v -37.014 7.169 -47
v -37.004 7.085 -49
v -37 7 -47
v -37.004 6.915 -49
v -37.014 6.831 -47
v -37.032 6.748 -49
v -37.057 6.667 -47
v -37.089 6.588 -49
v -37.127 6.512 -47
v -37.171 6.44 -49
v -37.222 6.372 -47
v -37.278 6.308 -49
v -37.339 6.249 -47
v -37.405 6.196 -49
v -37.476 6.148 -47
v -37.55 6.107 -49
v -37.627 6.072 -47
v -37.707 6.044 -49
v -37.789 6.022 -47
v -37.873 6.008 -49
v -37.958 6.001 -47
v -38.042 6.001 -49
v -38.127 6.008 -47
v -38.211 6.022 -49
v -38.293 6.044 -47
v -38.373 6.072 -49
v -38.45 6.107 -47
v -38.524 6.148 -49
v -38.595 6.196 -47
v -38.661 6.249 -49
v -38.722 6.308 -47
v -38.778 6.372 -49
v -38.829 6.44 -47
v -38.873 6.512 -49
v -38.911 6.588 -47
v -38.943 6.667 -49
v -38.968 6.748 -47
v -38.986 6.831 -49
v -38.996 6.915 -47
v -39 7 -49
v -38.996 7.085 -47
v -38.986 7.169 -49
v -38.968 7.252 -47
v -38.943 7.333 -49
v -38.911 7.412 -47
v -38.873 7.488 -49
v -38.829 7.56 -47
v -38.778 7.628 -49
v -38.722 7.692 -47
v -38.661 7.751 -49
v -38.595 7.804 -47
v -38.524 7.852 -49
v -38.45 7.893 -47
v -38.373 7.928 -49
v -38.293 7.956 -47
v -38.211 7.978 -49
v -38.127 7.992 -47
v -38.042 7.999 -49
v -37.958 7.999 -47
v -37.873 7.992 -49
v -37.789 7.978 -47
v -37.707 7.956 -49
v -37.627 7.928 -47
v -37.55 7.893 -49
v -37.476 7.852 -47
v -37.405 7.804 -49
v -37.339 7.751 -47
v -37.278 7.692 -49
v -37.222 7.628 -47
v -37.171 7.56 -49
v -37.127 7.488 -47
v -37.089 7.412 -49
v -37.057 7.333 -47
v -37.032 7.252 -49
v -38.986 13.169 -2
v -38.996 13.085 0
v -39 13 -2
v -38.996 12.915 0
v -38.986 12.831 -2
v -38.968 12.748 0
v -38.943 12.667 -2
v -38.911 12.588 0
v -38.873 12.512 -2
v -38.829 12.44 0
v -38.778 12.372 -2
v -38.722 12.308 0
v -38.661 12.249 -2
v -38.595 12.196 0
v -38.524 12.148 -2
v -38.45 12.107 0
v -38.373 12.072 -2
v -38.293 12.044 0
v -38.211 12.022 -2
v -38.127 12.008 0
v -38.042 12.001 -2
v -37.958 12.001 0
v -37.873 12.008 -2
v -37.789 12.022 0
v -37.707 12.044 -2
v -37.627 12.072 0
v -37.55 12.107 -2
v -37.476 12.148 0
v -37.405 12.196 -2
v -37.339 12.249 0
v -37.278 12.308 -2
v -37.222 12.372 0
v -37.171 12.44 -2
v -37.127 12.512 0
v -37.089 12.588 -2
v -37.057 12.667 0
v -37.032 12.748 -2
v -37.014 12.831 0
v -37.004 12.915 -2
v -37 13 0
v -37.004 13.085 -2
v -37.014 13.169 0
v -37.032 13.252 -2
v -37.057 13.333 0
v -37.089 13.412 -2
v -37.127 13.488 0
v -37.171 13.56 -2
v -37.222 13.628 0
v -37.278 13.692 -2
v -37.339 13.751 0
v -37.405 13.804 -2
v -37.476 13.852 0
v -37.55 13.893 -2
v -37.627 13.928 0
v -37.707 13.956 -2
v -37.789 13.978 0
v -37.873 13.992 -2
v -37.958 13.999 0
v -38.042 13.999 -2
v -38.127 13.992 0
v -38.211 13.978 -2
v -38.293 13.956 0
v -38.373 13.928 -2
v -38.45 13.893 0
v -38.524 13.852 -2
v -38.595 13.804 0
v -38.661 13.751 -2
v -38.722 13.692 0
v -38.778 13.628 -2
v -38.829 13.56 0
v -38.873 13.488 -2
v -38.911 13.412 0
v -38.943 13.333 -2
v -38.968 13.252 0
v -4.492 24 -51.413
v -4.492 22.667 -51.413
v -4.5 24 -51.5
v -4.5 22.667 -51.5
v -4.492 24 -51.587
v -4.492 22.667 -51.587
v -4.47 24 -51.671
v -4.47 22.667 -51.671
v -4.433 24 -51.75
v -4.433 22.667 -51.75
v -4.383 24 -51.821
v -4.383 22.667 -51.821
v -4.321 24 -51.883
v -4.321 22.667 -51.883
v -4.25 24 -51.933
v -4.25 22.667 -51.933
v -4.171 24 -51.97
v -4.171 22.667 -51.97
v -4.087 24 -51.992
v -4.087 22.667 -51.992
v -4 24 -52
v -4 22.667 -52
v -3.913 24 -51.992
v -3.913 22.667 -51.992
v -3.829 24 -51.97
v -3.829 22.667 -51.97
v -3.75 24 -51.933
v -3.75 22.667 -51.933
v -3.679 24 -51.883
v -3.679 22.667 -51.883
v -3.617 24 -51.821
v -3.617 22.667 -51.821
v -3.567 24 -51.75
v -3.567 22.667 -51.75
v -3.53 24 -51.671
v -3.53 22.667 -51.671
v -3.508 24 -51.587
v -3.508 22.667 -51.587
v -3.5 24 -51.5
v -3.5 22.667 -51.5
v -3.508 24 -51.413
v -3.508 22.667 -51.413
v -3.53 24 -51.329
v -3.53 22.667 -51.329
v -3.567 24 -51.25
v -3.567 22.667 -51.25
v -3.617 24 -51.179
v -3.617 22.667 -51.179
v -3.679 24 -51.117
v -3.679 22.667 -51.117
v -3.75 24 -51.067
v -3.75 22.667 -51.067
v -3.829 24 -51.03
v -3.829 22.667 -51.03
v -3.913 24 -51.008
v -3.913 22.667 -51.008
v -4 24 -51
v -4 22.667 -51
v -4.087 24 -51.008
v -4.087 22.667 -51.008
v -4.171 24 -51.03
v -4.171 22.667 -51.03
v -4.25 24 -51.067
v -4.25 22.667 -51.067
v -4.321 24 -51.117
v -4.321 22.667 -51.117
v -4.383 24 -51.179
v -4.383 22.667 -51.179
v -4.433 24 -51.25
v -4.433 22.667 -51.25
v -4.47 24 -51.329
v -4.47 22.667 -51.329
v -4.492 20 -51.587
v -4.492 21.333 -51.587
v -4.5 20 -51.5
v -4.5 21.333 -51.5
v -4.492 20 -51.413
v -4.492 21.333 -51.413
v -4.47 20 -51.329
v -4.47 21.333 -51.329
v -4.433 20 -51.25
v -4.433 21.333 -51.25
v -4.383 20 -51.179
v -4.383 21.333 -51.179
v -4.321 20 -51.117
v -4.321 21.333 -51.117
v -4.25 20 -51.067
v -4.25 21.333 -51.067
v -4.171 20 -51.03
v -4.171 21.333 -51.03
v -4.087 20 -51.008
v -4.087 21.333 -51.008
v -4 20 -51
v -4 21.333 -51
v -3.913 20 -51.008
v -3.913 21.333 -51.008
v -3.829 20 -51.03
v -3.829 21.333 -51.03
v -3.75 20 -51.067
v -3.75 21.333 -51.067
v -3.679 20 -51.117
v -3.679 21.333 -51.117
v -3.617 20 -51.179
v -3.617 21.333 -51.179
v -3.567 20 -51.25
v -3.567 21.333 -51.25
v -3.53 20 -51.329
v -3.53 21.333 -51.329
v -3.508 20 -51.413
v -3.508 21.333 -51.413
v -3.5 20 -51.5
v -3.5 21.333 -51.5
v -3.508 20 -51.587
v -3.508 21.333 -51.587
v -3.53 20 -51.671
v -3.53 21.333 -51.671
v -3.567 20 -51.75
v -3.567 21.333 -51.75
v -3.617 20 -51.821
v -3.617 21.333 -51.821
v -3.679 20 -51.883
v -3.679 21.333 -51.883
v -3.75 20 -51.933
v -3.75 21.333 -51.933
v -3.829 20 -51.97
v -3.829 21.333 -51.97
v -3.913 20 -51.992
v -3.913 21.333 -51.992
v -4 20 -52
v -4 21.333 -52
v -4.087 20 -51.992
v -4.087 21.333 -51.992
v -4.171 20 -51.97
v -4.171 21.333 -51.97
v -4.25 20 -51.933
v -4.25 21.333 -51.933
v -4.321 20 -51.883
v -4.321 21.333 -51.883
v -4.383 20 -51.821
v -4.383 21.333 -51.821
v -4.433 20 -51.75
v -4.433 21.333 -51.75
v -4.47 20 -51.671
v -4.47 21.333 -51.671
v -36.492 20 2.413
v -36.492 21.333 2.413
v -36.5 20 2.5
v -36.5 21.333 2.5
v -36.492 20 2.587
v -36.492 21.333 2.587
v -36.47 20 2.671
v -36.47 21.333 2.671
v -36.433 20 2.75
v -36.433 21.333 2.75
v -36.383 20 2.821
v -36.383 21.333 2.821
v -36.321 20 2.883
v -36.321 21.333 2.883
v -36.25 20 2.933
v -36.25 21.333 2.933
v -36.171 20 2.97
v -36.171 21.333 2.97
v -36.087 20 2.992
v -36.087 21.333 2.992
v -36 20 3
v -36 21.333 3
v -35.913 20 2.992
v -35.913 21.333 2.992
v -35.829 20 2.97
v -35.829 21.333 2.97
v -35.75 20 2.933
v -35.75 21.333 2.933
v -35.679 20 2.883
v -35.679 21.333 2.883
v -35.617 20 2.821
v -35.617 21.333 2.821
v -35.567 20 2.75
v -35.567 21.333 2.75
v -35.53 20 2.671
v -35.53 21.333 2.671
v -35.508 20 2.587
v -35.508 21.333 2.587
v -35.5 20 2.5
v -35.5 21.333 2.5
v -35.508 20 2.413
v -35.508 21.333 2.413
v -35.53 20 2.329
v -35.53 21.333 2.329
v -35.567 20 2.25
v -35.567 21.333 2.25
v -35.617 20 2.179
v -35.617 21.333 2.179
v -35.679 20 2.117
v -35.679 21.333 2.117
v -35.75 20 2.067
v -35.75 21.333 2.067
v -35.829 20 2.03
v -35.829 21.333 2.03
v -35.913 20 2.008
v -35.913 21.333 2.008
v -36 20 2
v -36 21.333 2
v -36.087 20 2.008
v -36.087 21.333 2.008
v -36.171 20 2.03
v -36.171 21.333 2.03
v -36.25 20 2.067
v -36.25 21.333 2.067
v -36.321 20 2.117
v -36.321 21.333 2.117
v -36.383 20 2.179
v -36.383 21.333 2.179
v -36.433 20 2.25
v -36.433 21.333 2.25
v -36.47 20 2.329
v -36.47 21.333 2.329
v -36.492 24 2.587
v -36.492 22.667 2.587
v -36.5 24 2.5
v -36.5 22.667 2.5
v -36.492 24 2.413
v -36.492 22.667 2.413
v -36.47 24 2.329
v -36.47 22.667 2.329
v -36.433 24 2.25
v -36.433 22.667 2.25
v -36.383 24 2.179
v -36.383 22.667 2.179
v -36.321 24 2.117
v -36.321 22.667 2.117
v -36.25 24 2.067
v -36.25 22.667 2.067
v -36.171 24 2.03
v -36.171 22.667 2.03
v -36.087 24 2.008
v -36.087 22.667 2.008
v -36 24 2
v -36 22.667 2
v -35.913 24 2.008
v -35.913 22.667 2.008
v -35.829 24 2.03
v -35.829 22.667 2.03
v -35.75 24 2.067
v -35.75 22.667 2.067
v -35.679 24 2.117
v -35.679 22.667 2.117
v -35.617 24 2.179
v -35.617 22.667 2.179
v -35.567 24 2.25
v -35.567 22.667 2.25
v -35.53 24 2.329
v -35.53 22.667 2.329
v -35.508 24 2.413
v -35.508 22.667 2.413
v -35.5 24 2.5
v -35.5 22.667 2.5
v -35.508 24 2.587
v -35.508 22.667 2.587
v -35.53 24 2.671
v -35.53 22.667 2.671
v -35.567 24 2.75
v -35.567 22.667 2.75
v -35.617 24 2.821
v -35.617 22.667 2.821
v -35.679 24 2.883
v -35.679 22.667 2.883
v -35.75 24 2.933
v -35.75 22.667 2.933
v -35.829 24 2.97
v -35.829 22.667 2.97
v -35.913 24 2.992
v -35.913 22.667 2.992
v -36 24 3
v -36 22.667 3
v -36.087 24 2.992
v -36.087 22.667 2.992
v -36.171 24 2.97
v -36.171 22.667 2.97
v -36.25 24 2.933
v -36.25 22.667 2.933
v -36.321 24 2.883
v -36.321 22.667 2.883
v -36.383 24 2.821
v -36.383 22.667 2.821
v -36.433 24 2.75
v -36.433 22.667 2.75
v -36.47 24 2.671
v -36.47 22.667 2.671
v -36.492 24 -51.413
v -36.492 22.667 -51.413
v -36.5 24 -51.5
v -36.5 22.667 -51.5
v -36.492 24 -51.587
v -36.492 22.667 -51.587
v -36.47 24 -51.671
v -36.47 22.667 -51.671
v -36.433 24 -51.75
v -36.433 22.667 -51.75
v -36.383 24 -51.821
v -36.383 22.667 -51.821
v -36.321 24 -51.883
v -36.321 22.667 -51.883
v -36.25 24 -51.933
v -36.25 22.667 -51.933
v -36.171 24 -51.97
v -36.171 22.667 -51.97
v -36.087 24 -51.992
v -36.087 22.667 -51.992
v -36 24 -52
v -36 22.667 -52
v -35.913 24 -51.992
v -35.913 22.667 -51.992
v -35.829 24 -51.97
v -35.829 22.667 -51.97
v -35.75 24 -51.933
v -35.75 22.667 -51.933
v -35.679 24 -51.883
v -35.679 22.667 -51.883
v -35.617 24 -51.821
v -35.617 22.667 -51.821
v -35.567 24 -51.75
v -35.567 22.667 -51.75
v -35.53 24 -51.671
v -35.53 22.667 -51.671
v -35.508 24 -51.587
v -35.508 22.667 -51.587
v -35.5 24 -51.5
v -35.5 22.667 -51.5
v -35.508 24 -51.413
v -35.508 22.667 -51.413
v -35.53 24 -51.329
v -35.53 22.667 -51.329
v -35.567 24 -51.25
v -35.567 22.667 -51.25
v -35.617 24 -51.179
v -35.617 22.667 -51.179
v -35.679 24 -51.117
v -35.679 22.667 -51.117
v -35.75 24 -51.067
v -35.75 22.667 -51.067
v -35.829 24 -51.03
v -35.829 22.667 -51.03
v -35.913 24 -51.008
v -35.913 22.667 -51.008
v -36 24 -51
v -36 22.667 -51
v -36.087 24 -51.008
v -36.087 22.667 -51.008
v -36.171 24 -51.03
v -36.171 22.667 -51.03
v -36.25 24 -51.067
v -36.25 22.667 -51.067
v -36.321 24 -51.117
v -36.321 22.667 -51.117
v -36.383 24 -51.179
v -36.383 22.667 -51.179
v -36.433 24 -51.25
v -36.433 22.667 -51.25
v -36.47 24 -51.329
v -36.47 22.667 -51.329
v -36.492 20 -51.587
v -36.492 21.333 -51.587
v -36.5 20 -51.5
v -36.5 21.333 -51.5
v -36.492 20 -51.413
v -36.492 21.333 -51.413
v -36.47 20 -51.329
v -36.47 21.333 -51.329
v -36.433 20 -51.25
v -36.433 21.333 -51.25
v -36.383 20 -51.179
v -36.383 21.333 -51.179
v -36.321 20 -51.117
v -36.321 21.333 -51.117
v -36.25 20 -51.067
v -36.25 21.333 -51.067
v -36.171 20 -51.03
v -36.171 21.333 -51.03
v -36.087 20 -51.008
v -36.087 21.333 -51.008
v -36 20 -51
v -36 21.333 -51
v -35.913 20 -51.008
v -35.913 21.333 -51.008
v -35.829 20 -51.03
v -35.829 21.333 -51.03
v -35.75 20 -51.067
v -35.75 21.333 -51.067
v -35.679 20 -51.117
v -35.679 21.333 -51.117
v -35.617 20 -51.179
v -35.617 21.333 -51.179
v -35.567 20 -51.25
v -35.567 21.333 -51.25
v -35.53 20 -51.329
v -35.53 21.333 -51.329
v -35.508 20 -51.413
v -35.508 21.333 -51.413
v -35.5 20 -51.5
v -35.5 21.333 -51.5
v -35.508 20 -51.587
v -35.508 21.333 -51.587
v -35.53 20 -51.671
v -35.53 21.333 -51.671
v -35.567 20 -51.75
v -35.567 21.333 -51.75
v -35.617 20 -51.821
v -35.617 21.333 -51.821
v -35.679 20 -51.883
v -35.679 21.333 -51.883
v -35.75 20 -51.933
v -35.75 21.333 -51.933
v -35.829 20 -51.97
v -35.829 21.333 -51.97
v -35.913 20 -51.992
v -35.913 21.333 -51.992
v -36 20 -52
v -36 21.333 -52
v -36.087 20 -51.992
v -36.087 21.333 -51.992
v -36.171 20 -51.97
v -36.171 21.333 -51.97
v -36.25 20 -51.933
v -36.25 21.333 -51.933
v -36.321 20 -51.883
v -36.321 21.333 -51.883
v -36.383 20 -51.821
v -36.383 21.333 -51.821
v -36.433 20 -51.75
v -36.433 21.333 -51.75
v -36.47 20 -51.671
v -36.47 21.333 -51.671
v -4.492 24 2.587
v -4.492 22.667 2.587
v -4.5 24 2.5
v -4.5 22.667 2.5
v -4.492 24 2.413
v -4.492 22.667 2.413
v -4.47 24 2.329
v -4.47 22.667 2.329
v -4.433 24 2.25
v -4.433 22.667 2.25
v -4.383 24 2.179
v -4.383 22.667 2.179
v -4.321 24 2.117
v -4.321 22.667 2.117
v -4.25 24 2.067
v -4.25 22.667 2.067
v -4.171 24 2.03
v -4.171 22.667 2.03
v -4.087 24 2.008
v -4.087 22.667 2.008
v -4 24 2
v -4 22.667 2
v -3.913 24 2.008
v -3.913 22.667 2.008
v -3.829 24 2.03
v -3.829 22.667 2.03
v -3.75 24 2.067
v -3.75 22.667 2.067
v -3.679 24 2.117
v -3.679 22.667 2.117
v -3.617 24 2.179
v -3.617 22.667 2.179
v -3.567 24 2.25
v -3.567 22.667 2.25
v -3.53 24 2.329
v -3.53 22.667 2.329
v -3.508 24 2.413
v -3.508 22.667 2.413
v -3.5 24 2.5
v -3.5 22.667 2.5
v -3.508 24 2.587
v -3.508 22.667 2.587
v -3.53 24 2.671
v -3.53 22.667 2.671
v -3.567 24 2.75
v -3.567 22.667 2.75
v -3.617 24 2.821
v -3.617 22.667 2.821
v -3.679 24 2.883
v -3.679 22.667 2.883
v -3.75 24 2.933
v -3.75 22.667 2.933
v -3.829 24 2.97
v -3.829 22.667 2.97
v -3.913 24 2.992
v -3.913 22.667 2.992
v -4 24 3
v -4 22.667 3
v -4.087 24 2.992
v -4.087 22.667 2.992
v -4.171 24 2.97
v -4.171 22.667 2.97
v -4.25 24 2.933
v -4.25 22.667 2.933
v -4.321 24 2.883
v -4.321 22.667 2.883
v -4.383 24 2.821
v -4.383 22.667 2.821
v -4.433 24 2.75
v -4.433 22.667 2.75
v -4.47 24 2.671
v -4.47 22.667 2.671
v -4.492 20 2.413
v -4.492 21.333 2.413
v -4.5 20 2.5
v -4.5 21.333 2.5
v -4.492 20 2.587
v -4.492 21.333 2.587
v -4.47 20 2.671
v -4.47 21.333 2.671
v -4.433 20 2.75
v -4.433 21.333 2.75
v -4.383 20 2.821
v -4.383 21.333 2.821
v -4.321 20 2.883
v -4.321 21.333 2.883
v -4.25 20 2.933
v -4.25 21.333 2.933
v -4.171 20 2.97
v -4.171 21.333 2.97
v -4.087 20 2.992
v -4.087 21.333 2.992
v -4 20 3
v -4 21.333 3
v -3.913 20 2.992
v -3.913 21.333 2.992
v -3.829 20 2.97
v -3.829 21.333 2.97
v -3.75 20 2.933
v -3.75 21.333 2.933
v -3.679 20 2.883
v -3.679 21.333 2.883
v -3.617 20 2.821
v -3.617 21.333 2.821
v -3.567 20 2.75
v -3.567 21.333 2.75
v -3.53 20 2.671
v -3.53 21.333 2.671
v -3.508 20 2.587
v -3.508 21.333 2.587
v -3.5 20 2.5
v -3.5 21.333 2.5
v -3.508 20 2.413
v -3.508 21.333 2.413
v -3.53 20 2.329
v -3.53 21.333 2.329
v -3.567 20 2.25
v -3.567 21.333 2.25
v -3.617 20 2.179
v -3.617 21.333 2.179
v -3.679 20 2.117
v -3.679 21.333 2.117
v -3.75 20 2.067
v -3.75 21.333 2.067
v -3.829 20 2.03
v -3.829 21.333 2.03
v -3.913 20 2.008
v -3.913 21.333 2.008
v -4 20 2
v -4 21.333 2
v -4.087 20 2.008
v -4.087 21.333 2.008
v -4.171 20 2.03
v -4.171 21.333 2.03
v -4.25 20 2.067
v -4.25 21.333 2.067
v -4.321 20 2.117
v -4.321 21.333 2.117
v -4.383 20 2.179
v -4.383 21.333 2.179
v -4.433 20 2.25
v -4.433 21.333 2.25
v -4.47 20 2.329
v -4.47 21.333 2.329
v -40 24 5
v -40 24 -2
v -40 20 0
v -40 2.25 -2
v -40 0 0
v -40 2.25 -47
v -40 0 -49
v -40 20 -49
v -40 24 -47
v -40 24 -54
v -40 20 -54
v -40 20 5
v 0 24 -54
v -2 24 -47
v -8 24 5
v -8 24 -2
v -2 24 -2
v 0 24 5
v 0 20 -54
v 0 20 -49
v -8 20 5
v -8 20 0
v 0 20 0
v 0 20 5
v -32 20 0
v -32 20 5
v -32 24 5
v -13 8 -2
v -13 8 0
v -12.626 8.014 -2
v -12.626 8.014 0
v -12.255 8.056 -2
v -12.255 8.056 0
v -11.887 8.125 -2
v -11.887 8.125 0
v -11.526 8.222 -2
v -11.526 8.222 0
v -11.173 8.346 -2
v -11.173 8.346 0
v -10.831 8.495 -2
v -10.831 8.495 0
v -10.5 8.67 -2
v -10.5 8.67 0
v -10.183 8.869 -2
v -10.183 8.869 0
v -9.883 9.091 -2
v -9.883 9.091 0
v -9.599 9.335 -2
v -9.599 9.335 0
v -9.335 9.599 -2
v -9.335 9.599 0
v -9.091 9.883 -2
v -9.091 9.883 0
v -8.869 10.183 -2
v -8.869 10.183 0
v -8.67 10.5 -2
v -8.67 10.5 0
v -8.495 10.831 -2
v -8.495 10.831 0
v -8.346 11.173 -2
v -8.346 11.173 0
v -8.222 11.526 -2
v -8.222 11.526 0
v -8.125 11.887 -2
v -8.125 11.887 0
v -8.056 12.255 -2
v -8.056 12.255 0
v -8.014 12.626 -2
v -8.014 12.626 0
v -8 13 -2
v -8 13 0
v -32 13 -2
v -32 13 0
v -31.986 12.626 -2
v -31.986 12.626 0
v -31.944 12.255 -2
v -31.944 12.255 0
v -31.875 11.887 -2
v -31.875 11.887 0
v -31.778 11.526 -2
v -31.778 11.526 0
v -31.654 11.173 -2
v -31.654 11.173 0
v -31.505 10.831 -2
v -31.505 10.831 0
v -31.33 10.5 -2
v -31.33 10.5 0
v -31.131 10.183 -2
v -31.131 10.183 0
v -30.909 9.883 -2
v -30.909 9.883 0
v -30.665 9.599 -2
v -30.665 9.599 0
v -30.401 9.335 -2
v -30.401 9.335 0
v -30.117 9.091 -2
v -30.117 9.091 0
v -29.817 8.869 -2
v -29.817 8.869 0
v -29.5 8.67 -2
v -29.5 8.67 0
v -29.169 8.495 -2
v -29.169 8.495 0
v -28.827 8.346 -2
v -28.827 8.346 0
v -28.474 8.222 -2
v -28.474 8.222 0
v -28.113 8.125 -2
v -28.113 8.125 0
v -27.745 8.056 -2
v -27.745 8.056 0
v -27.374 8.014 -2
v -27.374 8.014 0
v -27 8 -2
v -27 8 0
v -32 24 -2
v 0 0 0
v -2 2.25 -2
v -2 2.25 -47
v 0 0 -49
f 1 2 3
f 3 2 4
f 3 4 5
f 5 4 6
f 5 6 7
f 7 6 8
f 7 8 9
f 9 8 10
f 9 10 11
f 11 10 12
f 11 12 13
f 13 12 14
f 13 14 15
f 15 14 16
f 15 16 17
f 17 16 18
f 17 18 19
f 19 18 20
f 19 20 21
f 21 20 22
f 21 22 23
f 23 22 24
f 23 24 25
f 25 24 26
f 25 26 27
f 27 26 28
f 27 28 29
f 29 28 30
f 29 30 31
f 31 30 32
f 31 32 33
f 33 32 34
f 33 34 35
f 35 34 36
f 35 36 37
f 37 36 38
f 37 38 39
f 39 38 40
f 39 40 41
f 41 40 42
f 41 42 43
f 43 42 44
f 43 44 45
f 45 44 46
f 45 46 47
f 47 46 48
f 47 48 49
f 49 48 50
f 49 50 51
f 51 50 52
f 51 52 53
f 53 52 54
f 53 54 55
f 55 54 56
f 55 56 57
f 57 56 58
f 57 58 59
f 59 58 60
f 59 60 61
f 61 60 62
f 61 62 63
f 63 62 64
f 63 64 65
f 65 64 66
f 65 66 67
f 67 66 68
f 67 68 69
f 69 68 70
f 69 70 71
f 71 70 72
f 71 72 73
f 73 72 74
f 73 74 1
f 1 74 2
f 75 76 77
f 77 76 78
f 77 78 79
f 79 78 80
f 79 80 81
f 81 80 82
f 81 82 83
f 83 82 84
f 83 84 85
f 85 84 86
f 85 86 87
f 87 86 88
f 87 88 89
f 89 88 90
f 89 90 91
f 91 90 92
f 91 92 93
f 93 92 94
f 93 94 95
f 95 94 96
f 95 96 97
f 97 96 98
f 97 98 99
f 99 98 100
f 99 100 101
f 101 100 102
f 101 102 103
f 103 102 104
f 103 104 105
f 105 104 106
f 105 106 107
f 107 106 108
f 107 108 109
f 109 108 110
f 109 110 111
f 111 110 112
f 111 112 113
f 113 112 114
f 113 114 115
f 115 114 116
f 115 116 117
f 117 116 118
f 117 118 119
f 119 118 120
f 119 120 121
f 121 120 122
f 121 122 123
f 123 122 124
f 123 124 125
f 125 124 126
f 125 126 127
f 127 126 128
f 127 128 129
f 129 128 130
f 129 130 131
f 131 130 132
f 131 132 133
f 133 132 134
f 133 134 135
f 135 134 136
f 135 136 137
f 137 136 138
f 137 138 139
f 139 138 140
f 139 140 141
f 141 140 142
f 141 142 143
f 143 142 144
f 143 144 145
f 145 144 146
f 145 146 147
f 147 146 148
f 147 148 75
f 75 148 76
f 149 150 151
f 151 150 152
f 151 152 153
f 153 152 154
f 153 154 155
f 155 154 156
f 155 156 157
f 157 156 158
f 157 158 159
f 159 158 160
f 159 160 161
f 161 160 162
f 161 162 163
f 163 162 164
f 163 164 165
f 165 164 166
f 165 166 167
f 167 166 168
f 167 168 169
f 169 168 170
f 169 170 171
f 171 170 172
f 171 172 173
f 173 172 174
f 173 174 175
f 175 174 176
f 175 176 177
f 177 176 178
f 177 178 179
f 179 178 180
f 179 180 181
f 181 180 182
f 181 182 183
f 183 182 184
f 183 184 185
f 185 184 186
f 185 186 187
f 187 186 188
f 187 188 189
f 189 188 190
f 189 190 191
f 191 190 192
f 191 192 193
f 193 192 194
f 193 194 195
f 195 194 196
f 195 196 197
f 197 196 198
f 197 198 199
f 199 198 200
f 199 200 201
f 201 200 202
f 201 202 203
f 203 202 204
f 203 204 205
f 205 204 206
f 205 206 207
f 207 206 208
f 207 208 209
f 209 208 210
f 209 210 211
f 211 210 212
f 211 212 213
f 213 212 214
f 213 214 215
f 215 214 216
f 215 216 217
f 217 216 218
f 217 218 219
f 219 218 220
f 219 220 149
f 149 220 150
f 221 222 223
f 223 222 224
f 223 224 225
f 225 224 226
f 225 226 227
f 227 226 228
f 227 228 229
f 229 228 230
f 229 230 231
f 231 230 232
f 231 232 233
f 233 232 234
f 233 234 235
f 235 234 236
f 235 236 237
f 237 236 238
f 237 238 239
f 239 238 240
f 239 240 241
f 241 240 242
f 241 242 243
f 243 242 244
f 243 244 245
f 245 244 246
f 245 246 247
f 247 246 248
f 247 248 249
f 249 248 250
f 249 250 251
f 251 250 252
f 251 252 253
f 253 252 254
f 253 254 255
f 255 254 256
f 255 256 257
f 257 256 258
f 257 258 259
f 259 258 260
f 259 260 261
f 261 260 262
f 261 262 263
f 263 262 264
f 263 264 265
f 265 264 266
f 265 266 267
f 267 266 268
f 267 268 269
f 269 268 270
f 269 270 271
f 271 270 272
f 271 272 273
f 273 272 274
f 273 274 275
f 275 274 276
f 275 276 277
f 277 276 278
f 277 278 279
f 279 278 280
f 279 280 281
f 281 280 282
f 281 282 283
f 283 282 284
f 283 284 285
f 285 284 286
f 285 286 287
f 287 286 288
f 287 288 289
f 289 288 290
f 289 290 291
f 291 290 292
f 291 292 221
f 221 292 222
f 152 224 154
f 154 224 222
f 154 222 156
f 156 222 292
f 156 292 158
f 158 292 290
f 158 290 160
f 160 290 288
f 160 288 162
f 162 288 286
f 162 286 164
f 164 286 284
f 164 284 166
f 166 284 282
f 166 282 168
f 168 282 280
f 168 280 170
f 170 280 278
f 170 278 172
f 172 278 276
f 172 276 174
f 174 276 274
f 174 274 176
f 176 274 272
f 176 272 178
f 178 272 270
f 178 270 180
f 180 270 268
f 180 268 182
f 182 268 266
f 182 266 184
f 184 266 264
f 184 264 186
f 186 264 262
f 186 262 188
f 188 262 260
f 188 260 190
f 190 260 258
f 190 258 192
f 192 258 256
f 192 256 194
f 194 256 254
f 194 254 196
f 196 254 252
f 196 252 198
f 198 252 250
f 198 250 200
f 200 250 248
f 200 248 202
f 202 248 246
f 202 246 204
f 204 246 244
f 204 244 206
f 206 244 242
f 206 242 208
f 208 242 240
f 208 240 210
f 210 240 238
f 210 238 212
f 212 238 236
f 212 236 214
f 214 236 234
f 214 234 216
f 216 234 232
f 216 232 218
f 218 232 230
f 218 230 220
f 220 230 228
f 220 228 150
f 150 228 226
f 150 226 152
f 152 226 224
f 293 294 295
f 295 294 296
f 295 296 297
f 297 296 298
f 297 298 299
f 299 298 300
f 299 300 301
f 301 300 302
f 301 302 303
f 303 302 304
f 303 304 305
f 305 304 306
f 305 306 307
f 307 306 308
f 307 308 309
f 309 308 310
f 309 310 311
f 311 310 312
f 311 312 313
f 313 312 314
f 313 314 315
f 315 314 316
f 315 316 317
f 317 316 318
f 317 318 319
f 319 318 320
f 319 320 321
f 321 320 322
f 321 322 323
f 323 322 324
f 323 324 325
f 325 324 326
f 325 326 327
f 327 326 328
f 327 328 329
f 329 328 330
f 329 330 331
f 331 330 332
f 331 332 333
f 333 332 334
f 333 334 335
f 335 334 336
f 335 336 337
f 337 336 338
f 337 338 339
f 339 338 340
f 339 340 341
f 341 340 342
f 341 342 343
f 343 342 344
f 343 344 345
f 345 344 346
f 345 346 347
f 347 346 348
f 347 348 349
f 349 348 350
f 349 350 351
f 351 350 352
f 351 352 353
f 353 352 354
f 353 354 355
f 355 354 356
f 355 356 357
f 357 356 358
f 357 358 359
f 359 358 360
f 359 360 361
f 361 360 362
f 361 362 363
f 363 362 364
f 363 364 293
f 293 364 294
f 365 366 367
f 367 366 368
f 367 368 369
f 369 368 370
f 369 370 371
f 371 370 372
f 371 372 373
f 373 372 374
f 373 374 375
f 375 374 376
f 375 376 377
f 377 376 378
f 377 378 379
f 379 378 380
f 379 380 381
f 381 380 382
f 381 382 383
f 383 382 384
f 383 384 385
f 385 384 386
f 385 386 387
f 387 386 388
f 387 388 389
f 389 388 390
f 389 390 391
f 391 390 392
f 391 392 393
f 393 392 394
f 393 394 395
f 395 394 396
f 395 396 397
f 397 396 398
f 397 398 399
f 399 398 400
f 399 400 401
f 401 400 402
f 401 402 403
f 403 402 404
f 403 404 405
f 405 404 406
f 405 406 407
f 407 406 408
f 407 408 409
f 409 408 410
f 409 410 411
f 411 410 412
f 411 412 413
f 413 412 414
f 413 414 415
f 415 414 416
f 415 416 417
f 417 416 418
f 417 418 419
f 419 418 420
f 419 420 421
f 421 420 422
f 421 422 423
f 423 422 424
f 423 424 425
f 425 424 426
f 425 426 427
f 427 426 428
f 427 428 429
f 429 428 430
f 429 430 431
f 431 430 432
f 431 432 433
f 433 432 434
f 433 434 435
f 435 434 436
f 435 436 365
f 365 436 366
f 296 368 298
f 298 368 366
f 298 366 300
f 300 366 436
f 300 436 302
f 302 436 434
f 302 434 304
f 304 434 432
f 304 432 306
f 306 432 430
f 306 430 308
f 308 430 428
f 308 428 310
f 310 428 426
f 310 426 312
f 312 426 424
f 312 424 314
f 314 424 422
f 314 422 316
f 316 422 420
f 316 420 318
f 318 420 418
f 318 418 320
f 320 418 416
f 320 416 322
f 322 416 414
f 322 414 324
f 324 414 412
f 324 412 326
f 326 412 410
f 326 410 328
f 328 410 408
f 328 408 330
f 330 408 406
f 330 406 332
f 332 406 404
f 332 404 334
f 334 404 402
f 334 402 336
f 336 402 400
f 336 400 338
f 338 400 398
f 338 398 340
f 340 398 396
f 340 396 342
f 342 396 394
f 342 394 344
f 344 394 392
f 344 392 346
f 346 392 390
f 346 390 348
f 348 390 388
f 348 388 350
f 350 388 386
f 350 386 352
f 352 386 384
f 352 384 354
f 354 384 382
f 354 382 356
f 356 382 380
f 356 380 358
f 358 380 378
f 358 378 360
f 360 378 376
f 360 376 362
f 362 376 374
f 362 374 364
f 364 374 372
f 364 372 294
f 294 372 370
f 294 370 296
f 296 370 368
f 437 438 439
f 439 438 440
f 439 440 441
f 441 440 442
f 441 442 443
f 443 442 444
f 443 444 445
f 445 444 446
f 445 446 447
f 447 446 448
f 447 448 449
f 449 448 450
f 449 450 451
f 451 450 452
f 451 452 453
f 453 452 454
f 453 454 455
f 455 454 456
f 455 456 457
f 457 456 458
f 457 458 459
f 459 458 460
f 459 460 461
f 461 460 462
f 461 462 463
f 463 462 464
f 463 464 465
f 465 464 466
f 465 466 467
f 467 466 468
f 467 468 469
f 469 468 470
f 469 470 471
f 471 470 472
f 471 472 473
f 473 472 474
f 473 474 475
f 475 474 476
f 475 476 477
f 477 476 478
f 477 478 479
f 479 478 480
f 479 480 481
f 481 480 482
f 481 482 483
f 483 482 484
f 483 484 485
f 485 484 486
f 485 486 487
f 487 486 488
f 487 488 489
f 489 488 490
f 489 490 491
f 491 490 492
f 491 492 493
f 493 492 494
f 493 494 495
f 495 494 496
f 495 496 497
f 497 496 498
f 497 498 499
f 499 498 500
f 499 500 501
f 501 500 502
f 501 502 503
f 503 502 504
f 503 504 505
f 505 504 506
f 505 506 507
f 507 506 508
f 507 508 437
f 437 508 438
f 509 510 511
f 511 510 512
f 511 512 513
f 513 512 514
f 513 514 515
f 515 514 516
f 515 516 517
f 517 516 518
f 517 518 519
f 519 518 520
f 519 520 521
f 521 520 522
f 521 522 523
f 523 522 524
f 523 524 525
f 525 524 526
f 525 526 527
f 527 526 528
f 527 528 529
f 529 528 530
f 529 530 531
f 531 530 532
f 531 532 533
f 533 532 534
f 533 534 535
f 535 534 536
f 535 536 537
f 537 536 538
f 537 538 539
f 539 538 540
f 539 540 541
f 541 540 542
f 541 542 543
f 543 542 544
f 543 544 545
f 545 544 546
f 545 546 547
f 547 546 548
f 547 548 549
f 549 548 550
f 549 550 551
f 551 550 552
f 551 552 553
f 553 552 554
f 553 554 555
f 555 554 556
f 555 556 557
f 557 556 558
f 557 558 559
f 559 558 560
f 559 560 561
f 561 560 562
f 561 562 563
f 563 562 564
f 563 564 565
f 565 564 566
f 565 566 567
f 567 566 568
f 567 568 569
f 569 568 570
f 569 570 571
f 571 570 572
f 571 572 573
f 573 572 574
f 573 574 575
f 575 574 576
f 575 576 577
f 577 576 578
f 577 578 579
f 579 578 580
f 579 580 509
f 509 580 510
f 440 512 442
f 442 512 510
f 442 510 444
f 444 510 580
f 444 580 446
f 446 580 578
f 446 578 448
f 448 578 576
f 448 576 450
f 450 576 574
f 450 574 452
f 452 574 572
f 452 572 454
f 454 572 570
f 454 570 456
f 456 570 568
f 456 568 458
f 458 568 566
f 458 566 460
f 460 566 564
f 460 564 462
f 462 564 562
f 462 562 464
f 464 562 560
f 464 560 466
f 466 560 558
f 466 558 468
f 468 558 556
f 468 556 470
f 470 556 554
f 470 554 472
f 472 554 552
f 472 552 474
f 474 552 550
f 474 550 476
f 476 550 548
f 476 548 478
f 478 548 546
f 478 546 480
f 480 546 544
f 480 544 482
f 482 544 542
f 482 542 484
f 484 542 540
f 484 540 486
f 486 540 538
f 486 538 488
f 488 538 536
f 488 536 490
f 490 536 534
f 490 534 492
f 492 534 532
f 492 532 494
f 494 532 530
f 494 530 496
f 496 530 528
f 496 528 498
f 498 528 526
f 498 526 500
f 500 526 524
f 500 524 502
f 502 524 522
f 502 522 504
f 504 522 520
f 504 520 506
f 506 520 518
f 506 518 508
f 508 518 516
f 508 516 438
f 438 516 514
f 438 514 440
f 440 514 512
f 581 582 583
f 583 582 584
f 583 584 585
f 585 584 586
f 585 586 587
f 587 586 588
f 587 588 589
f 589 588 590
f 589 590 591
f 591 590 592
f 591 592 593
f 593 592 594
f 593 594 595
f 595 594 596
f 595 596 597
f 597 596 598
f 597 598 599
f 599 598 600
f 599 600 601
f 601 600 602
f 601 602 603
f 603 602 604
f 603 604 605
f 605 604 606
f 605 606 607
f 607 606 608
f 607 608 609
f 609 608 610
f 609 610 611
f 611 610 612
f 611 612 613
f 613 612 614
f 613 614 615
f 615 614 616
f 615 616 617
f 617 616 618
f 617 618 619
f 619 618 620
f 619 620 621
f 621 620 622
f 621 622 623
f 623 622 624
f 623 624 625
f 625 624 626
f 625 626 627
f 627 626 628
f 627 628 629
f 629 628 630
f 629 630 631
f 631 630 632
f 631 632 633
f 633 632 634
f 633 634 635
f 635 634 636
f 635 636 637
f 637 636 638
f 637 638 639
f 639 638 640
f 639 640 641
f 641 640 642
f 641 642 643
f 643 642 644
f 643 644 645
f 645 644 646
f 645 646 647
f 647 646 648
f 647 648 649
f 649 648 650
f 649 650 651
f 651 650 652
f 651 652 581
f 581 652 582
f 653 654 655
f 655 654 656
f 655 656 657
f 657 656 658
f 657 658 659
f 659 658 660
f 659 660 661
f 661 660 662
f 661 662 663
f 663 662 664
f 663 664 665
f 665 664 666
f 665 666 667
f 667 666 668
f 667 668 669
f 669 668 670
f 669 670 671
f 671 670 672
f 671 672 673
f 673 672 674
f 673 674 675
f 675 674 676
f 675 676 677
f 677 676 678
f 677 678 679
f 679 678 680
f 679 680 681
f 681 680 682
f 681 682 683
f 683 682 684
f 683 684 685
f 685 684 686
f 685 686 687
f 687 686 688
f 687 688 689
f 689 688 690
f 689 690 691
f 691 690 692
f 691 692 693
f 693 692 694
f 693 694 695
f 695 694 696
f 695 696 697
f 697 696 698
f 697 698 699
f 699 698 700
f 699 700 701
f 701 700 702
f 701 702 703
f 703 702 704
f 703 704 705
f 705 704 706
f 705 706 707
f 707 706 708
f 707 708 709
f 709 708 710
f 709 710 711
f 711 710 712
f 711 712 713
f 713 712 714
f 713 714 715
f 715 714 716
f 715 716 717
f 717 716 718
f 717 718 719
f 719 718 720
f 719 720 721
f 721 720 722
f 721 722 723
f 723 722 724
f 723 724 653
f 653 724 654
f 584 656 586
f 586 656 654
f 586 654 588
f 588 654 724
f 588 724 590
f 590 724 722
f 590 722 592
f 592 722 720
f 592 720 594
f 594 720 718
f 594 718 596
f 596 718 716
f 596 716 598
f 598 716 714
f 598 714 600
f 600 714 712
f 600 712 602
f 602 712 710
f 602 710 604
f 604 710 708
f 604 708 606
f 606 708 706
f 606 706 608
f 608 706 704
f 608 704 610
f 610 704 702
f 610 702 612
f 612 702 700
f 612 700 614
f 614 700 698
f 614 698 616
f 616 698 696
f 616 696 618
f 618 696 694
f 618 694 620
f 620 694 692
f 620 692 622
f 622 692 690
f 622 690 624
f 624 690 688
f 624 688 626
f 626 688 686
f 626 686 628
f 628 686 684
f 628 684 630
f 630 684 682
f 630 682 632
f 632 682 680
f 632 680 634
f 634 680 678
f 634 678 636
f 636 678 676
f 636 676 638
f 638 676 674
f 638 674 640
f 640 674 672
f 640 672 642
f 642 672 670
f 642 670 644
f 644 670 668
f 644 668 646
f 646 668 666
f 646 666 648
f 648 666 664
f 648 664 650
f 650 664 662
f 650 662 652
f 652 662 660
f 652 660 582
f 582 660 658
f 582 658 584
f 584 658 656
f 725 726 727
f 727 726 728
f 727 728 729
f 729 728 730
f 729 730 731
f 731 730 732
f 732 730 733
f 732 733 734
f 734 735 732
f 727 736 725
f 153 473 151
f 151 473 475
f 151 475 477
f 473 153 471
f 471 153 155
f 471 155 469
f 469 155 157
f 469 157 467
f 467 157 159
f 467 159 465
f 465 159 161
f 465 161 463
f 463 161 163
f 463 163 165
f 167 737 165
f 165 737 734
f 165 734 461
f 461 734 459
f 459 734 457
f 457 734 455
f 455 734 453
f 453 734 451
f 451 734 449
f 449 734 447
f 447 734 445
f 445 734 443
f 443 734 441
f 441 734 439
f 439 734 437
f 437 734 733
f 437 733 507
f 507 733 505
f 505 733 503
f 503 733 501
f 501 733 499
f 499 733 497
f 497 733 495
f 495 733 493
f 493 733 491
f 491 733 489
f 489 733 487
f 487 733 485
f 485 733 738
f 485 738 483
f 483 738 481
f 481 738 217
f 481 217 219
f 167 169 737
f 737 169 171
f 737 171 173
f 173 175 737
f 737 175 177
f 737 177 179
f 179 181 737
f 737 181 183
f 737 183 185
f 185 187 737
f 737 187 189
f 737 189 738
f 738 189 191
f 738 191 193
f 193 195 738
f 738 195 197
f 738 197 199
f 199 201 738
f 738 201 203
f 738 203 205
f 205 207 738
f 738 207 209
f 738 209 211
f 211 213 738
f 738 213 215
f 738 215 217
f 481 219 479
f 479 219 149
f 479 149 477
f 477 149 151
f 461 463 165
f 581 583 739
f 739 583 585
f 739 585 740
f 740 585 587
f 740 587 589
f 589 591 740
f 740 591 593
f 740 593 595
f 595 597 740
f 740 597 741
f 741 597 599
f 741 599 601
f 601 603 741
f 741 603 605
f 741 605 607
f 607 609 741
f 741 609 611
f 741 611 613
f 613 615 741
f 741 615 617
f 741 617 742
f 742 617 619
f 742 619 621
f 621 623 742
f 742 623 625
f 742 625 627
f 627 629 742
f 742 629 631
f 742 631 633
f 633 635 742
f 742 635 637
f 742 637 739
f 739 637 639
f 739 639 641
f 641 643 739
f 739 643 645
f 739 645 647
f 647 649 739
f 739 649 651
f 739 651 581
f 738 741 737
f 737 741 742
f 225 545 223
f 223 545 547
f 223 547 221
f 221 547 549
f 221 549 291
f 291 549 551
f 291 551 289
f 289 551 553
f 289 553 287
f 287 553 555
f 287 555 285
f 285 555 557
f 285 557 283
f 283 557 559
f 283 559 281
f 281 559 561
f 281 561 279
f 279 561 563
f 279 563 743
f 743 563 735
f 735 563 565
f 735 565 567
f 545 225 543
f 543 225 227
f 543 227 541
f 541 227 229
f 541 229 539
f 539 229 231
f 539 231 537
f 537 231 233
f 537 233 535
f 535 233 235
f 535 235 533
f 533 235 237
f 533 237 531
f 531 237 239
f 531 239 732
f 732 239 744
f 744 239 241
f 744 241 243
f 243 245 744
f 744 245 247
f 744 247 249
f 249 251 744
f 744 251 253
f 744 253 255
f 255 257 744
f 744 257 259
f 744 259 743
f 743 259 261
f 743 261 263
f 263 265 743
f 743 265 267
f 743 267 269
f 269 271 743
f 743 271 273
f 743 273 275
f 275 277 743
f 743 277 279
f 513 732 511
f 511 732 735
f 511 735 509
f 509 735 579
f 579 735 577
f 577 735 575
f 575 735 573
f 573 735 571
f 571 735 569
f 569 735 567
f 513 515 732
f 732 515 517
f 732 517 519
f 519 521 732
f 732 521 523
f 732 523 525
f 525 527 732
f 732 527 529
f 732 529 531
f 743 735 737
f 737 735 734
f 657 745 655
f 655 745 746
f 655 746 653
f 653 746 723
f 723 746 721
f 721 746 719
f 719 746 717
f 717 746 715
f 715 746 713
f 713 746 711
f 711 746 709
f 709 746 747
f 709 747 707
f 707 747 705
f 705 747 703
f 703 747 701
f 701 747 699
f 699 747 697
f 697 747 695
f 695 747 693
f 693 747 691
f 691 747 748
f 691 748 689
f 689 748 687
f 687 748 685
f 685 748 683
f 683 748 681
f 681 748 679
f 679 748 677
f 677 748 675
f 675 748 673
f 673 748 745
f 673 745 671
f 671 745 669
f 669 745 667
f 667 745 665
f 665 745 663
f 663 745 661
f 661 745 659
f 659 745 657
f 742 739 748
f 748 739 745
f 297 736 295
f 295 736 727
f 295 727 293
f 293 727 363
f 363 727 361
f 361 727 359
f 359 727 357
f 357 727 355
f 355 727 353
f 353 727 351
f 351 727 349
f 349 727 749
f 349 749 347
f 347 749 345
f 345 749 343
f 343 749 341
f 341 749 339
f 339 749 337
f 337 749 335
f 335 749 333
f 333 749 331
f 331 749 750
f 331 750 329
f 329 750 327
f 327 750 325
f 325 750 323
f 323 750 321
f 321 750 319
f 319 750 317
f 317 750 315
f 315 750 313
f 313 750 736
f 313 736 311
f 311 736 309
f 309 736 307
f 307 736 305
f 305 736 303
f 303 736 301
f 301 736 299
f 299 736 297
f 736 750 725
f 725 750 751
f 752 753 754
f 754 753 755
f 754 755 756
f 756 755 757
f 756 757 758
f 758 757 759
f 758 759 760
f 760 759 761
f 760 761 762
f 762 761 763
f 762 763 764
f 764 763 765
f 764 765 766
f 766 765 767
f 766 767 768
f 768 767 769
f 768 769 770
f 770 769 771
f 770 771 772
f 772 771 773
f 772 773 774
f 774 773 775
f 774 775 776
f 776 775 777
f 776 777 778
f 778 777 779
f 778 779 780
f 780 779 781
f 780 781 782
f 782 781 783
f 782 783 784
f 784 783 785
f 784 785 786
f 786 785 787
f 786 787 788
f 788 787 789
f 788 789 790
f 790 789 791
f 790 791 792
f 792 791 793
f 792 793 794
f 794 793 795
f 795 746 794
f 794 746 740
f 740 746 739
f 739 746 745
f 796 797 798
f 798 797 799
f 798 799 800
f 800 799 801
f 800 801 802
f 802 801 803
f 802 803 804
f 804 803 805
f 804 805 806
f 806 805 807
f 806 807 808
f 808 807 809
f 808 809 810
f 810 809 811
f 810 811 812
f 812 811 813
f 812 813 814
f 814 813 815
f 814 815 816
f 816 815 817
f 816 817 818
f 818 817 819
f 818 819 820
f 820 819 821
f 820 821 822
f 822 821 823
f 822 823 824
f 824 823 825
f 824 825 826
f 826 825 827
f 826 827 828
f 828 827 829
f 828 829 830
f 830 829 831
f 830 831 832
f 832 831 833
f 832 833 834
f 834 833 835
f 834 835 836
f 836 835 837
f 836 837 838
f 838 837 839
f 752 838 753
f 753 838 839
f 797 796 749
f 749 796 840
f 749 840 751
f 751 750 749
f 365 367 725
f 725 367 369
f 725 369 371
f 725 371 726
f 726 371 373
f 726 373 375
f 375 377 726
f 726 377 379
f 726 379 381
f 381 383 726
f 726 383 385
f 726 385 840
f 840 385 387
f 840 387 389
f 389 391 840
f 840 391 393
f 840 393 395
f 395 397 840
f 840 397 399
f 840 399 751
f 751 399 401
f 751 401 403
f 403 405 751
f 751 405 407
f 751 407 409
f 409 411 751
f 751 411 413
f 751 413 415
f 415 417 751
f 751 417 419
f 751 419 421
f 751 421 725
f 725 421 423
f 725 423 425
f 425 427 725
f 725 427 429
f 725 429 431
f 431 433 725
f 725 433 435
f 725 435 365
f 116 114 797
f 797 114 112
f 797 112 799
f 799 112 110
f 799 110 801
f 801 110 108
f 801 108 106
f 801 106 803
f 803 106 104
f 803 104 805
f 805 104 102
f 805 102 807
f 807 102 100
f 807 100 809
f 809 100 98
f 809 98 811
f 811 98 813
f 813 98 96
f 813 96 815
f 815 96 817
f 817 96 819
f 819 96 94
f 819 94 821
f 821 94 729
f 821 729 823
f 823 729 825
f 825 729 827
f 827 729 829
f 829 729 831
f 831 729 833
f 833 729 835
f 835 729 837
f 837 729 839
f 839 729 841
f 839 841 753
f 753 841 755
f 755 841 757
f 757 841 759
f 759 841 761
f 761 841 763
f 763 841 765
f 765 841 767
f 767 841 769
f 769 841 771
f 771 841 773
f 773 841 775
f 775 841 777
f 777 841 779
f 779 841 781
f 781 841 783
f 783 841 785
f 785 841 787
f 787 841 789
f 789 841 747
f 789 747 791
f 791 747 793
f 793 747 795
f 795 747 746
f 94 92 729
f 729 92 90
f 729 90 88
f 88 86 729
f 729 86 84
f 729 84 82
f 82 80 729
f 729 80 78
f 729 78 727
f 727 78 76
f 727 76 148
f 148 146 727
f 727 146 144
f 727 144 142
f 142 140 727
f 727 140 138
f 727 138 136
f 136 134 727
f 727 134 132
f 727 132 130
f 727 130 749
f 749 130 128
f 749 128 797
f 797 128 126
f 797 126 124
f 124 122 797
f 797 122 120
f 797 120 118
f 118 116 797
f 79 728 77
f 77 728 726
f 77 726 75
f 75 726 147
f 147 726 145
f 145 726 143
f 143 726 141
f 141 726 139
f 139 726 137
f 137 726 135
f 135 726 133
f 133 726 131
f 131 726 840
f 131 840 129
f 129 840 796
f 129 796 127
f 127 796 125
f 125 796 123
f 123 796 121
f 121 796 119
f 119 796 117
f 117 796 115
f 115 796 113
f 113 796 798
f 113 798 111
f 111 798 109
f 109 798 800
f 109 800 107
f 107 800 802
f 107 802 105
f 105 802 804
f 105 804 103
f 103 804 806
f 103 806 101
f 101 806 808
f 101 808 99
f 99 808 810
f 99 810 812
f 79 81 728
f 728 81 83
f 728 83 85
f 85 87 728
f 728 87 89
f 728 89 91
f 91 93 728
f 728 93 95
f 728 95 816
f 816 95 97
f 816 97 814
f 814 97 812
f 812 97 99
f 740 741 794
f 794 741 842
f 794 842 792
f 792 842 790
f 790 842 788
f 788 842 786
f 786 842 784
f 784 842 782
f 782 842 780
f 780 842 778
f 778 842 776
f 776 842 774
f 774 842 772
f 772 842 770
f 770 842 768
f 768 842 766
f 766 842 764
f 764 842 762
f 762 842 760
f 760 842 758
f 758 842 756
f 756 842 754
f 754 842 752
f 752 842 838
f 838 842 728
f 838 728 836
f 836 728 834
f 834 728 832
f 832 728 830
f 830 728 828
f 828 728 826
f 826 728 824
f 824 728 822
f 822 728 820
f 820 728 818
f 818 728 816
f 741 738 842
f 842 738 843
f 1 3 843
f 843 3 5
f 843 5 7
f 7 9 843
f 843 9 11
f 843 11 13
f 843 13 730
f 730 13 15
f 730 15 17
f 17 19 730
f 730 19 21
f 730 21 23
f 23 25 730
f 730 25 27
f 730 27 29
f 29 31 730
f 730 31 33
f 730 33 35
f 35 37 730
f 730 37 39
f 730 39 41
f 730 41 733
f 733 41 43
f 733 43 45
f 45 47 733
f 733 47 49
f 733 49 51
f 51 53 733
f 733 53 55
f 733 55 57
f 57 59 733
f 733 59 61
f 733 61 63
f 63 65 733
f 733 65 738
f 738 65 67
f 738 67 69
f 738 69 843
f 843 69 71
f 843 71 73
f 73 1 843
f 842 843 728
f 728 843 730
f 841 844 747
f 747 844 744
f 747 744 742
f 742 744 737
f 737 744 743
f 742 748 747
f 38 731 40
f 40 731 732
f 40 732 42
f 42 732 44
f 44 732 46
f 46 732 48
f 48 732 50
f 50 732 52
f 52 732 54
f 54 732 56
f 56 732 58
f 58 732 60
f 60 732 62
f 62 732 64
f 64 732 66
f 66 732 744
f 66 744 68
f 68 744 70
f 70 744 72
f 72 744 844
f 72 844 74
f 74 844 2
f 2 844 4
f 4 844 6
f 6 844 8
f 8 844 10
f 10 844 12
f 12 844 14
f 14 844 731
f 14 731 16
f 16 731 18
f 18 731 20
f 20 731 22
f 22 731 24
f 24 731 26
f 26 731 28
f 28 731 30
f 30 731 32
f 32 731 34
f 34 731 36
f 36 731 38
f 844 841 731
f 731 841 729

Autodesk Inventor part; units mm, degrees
ref_plane "YZ Plane" through (0, 0, 0) normal (1, 0, 0) x (0, 1, 0)
ref_plane "XZ Plane" through (0, 0, 0) normal (0, 1, 0) x (-1, 0, 0)
ref_plane "XY Plane" through (0, 0, 0) normal (0, 0, 1) x (1, 0, 0)
sketch "Sketch1" plane through (0, 0, 0) normal (0, 1, 0) x (-1, 0, 0)
  line L0 (0, 0) -> (40, 0)
  line L1 (40, 0) -> (40, -49)
  line L2 (40, -49) -> (0, -49)
  line L3 (0, -49) -> (0, 0)
  dimension "d0" = 40
  dimension "d1" = 49
extrude "Extrusion1" add sketch "Sketch1" along normal blind 24
sketch "Sketch2" plane through (0, 24, 0) normal (0, 1, 0) x (1, 0, 0)
  line L0 (0, 0) -> (0, 49) projected
  line L1 (0, 49) -> (-40, 49) projected
  line L2 (0, 0) -> (-2, 0)
  line L3 (-2, 0) -> (-2, 49)
  line L4 (-2, 49) -> (0, 49)
  line L5 (0, 49) -> (0, 0)
  line L6 (-40, 49) -> (-40, 0) projected
  line L7 (-40, 0) -> (-38, 0)
  line L8 (-38, 0) -> (-38, 49)
  line L9 (-38, 49) -> (-40, 49)
  line L10 (-40, 49) -> (-40, 0)
  line L11 (0, 0) -> (-40, 0)
  line L12 (-40, 0) -> (-40, 2)
  line L13 (-40, 2) -> (0, 2)
  line L14 (0, 2) -> (0, 0)
  line L15 (0, 49) -> (-40, 49)
  line L16 (-40, 49) -> (-40, 47)
  line L17 (-40, 47) -> (0, 47)
  line L18 (0, 47) -> (0, 49)
  line L19 (-2, 47) -> (-38, 47)
  line L20 (-38, 47) -> (-38, 2)
  line L21 (-38, 2) -> (-2, 2)
  line L22 (-2, 2) -> (-2, 47)
  point P0 (-38, 47)
  dimension "d4" = 2
  dimension "d5" = 2
  dimension "d6" = 2
  dimension "d7" = 2
extrude "Extrusion2" cut sketch "Sketch2" against normal blind 21.75 contours L13 L8 L17 L3
sketch "Sketch3" plane through (-40, 0, 0) normal (0, 0, 1) x (1, 0, 0)
  line L0 (0, 24) -> (40, 24) projected
  line L1 (0, 0) -> (40, 0) projected
  line L2 (0, 24) -> (8, 24)
  line L3 (8, 24) -> (8, 0)
  line L4 (8, 0) -> (0, 0)
  line L5 (0, 0) -> (0, 24)
  line L6 (0, 0) -> (0, 24) projected
  line L7 (40, 0) -> (40, 24) projected
  line L8 (0, 0) -> (40, 0)
  line L9 (40, 0) -> (40, 8)
  line L10 (40, 8) -> (0, 8)
  line L11 (0, 8) -> (0, 0)
  line L12 (38, 24) -> (2, 24) projected
  line L13 (40, 0) -> (32, 0)
  line L14 (32, 0) -> (32, 24)
  line L15 (32, 24) -> (40, 24)
  line L16 (40, 24) -> (40, 0)
  line L17 (8, 24) -> (32, 24)
  line L18 (32, 24) -> (32, 8)
  line L19 (32, 8) -> (8, 8)
  line L20 (8, 8) -> (8, 24)
  point P0 (8, 8)
  dimension "d10" = 8
  dimension "d11" = 8
  dimension "d12" = 8
extrude "Extrusion3" cut sketch "Sketch3" against normal blind 21 contours L0 L14 L10 L3
fillet "Fillet1" radius 5 2 edges at (-32, 8, -1) (-8, 8, -1)
sketch "Sketch4" plane through (-40, 0, 0) normal (0, 0, 1) x (1, 0, 0)
  line L0 (0, 0) -> (0, 24) projected
  line L1 (8, 13) -> (8, 24) projected
  line L2 (0, 24) -> (8, 24)
  line L3 (8, 24) -> (8, 20)
  line L4 (8, 20) -> (0, 20)
  line L5 (0, 20) -> (0, 24)
  line L6 (32, 24) -> (40, 24) projected
  line L7 (32, 13) -> (32, 24) projected
  line L8 (40, 24) -> (32, 24)
  line L9 (32, 24) -> (32, 20)
  line L10 (32, 20) -> (40, 20)
  line L11 (40, 20) -> (40, 24)
  point P0 (40, 0)
  point P1 (0, 20)
  dimension "d16" = 4
  dimension "d17" = 4
extrude "Extrusion4" add sketch "Sketch4" along normal blind 5
sketch "Sketch5" plane through (0, 0, -49) normal (0, 0, -1) x (-1, 0, 0)
  line L0 (40, 0) -> (40, 24) projected
  line L1 (0, 24) -> (40, 24)
  line L2 (40, 24) -> (40, 20)
  line L3 (40, 20) -> (0, 20)
  line L4 (0, 20) -> (0, 24)
  point P0 (0, 0)
  dimension "d20" = 4
extrude "Extrusion5" add sketch "Sketch5" along normal blind 5
sketch "Sketch6" plane through (-2, 24, -47) normal (-1, 0, 0) x (0, 0, 1)
  line L0 (0, 0) -> (0, -21.75) projected
  line L1 (0, 0) -> (45, 0) projected
  line L2 (0, -21.75) -> (45, -21.75)
  line L3 (45, -21.75) -> (45, 0)
  line L4 (45, 0) -> (0, 0)
  line L5 (0, 0) -> (0, -21.75)
  point P0 (47, -24)
extrude "Extrusion6" cut sketch "Sketch6" along normal blind 50
sketch "Sketch10" plane through (0, 0, 0) normal (0, -1, 0) x (1, 0, 0)
  line L0 (-8, 5) -> (0, 5) projected
  line L1 (0, 5) -> (-4, 5)
  line L2 (-4, 5) -> (-4, 2.5)
  line L3 (-4, 2.5) -> (0, 2.5)
  line L4 (0, 2.5) -> (0, 5)
  circle A0 centre (-4, 2.5) radius 0.5
  line L5 (-40, 0) -> (-40, 5) projected
  line L6 (-40, 5) -> (-36, 5)
  line L7 (-36, 5) -> (-36, 2.5)
  line L8 (-36, 2.5) -> (-40, 2.5)
  line L9 (-40, 2.5) -> (-40, 5)
  circle A1 centre (-36, 2.5) radius 0.5
  line L10 (-40, 5) -> (-40, -54) projected
  line L11 (-40, -54) -> (-36, -54)
  line L12 (-36, -54) -> (-36, -51.5)
  line L13 (-36, -51.5) -> (-40, -51.5)
  line L14 (-40, -51.5) -> (-40, -54)
  circle A2 centre (-36, -51.5) radius 0.5
  line L15 (0, -54) -> (0, 5) projected
  line L16 (0, -54) -> (-4, -54)
  line L17 (-4, -54) -> (-4, -51.5)
  line L18 (-4, -51.5) -> (0, -51.5)
  line L19 (0, -51.5) -> (0, -54)
  circle A3 centre (-4, -51.5) radius 0.5
  point P0 (0, 0)
  point P1 (0, -47)
  dimension "d41" = 4
  dimension "d42" = 2.5
  dimension "d43" = 1
  dimension "d44" = 4
  dimension "d45" = 2.5
  dimension "d46" = 1
  dimension "d49" = 4
  dimension "d50" = 2.5
  dimension "d51" = 1
  dimension "d53" = 4
  dimension "d54" = 2.5
  dimension "d55" = 1
extrude "Extrusion10" cut sketch "Sketch10" against normal blind 30 contours A0 L3 L2 | L2 L3 A0 | A3 L17 L18 | L18 L17 A3 | A1 L7 L8 | L8 L7 A1 | A2 L12 L13 | L13 L12 A2
sketch "Sketch12" plane through (-40, 0, 0) normal (0, 0, 1) x (1, 0, 0)
  line L0 (40, 20) -> (36.5, 20)
  line L1 (0, 20) -> (2, 20)
  line L2 (2, 20) -> (2, 13)
  line L3 (2, 13) -> (0, 13)
  line L4 (0, 13) -> (0, 20)
  circle A0 centre (2, 13) radius 1
  point P0 (40, 0)
  dimension "d76" = 2
  dimension "d77" = 7
  dimension "d78" = 2
extrude "Extrusion12" cut sketch "Sketch12" against normal blind 5 contours A0 L3 L2 | L2 L3 A0
sketch "Sketch14" plane through (0, 0, -49) normal (0, 0, -1) x (-1, 0, 0)
  line L0 (0, 0) -> (40, 0) projected
  line L1 (40, 0) -> (38, 0)
  line L2 (38, 0) -> (38, 7)
  line L3 (38, 7) -> (40, 7)
  line L4 (40, 7) -> (40, 0)
  circle A0 centre (38, 7) radius 1
  dimension "d79" = 2
  dimension "d80" = 7
  dimension "d81" = 2
extrude "Extrusion14" cut sketch "Sketch14" against normal blind 5 contours A0 L3 L2 | L2 L3 A0
sketch "Sketch15" plane through (-40, 0, -49) normal (-1, 0, 0) x (0, 0, 1)
  point P0 (49, 0)
properties part number "encaixe2 mouse"
